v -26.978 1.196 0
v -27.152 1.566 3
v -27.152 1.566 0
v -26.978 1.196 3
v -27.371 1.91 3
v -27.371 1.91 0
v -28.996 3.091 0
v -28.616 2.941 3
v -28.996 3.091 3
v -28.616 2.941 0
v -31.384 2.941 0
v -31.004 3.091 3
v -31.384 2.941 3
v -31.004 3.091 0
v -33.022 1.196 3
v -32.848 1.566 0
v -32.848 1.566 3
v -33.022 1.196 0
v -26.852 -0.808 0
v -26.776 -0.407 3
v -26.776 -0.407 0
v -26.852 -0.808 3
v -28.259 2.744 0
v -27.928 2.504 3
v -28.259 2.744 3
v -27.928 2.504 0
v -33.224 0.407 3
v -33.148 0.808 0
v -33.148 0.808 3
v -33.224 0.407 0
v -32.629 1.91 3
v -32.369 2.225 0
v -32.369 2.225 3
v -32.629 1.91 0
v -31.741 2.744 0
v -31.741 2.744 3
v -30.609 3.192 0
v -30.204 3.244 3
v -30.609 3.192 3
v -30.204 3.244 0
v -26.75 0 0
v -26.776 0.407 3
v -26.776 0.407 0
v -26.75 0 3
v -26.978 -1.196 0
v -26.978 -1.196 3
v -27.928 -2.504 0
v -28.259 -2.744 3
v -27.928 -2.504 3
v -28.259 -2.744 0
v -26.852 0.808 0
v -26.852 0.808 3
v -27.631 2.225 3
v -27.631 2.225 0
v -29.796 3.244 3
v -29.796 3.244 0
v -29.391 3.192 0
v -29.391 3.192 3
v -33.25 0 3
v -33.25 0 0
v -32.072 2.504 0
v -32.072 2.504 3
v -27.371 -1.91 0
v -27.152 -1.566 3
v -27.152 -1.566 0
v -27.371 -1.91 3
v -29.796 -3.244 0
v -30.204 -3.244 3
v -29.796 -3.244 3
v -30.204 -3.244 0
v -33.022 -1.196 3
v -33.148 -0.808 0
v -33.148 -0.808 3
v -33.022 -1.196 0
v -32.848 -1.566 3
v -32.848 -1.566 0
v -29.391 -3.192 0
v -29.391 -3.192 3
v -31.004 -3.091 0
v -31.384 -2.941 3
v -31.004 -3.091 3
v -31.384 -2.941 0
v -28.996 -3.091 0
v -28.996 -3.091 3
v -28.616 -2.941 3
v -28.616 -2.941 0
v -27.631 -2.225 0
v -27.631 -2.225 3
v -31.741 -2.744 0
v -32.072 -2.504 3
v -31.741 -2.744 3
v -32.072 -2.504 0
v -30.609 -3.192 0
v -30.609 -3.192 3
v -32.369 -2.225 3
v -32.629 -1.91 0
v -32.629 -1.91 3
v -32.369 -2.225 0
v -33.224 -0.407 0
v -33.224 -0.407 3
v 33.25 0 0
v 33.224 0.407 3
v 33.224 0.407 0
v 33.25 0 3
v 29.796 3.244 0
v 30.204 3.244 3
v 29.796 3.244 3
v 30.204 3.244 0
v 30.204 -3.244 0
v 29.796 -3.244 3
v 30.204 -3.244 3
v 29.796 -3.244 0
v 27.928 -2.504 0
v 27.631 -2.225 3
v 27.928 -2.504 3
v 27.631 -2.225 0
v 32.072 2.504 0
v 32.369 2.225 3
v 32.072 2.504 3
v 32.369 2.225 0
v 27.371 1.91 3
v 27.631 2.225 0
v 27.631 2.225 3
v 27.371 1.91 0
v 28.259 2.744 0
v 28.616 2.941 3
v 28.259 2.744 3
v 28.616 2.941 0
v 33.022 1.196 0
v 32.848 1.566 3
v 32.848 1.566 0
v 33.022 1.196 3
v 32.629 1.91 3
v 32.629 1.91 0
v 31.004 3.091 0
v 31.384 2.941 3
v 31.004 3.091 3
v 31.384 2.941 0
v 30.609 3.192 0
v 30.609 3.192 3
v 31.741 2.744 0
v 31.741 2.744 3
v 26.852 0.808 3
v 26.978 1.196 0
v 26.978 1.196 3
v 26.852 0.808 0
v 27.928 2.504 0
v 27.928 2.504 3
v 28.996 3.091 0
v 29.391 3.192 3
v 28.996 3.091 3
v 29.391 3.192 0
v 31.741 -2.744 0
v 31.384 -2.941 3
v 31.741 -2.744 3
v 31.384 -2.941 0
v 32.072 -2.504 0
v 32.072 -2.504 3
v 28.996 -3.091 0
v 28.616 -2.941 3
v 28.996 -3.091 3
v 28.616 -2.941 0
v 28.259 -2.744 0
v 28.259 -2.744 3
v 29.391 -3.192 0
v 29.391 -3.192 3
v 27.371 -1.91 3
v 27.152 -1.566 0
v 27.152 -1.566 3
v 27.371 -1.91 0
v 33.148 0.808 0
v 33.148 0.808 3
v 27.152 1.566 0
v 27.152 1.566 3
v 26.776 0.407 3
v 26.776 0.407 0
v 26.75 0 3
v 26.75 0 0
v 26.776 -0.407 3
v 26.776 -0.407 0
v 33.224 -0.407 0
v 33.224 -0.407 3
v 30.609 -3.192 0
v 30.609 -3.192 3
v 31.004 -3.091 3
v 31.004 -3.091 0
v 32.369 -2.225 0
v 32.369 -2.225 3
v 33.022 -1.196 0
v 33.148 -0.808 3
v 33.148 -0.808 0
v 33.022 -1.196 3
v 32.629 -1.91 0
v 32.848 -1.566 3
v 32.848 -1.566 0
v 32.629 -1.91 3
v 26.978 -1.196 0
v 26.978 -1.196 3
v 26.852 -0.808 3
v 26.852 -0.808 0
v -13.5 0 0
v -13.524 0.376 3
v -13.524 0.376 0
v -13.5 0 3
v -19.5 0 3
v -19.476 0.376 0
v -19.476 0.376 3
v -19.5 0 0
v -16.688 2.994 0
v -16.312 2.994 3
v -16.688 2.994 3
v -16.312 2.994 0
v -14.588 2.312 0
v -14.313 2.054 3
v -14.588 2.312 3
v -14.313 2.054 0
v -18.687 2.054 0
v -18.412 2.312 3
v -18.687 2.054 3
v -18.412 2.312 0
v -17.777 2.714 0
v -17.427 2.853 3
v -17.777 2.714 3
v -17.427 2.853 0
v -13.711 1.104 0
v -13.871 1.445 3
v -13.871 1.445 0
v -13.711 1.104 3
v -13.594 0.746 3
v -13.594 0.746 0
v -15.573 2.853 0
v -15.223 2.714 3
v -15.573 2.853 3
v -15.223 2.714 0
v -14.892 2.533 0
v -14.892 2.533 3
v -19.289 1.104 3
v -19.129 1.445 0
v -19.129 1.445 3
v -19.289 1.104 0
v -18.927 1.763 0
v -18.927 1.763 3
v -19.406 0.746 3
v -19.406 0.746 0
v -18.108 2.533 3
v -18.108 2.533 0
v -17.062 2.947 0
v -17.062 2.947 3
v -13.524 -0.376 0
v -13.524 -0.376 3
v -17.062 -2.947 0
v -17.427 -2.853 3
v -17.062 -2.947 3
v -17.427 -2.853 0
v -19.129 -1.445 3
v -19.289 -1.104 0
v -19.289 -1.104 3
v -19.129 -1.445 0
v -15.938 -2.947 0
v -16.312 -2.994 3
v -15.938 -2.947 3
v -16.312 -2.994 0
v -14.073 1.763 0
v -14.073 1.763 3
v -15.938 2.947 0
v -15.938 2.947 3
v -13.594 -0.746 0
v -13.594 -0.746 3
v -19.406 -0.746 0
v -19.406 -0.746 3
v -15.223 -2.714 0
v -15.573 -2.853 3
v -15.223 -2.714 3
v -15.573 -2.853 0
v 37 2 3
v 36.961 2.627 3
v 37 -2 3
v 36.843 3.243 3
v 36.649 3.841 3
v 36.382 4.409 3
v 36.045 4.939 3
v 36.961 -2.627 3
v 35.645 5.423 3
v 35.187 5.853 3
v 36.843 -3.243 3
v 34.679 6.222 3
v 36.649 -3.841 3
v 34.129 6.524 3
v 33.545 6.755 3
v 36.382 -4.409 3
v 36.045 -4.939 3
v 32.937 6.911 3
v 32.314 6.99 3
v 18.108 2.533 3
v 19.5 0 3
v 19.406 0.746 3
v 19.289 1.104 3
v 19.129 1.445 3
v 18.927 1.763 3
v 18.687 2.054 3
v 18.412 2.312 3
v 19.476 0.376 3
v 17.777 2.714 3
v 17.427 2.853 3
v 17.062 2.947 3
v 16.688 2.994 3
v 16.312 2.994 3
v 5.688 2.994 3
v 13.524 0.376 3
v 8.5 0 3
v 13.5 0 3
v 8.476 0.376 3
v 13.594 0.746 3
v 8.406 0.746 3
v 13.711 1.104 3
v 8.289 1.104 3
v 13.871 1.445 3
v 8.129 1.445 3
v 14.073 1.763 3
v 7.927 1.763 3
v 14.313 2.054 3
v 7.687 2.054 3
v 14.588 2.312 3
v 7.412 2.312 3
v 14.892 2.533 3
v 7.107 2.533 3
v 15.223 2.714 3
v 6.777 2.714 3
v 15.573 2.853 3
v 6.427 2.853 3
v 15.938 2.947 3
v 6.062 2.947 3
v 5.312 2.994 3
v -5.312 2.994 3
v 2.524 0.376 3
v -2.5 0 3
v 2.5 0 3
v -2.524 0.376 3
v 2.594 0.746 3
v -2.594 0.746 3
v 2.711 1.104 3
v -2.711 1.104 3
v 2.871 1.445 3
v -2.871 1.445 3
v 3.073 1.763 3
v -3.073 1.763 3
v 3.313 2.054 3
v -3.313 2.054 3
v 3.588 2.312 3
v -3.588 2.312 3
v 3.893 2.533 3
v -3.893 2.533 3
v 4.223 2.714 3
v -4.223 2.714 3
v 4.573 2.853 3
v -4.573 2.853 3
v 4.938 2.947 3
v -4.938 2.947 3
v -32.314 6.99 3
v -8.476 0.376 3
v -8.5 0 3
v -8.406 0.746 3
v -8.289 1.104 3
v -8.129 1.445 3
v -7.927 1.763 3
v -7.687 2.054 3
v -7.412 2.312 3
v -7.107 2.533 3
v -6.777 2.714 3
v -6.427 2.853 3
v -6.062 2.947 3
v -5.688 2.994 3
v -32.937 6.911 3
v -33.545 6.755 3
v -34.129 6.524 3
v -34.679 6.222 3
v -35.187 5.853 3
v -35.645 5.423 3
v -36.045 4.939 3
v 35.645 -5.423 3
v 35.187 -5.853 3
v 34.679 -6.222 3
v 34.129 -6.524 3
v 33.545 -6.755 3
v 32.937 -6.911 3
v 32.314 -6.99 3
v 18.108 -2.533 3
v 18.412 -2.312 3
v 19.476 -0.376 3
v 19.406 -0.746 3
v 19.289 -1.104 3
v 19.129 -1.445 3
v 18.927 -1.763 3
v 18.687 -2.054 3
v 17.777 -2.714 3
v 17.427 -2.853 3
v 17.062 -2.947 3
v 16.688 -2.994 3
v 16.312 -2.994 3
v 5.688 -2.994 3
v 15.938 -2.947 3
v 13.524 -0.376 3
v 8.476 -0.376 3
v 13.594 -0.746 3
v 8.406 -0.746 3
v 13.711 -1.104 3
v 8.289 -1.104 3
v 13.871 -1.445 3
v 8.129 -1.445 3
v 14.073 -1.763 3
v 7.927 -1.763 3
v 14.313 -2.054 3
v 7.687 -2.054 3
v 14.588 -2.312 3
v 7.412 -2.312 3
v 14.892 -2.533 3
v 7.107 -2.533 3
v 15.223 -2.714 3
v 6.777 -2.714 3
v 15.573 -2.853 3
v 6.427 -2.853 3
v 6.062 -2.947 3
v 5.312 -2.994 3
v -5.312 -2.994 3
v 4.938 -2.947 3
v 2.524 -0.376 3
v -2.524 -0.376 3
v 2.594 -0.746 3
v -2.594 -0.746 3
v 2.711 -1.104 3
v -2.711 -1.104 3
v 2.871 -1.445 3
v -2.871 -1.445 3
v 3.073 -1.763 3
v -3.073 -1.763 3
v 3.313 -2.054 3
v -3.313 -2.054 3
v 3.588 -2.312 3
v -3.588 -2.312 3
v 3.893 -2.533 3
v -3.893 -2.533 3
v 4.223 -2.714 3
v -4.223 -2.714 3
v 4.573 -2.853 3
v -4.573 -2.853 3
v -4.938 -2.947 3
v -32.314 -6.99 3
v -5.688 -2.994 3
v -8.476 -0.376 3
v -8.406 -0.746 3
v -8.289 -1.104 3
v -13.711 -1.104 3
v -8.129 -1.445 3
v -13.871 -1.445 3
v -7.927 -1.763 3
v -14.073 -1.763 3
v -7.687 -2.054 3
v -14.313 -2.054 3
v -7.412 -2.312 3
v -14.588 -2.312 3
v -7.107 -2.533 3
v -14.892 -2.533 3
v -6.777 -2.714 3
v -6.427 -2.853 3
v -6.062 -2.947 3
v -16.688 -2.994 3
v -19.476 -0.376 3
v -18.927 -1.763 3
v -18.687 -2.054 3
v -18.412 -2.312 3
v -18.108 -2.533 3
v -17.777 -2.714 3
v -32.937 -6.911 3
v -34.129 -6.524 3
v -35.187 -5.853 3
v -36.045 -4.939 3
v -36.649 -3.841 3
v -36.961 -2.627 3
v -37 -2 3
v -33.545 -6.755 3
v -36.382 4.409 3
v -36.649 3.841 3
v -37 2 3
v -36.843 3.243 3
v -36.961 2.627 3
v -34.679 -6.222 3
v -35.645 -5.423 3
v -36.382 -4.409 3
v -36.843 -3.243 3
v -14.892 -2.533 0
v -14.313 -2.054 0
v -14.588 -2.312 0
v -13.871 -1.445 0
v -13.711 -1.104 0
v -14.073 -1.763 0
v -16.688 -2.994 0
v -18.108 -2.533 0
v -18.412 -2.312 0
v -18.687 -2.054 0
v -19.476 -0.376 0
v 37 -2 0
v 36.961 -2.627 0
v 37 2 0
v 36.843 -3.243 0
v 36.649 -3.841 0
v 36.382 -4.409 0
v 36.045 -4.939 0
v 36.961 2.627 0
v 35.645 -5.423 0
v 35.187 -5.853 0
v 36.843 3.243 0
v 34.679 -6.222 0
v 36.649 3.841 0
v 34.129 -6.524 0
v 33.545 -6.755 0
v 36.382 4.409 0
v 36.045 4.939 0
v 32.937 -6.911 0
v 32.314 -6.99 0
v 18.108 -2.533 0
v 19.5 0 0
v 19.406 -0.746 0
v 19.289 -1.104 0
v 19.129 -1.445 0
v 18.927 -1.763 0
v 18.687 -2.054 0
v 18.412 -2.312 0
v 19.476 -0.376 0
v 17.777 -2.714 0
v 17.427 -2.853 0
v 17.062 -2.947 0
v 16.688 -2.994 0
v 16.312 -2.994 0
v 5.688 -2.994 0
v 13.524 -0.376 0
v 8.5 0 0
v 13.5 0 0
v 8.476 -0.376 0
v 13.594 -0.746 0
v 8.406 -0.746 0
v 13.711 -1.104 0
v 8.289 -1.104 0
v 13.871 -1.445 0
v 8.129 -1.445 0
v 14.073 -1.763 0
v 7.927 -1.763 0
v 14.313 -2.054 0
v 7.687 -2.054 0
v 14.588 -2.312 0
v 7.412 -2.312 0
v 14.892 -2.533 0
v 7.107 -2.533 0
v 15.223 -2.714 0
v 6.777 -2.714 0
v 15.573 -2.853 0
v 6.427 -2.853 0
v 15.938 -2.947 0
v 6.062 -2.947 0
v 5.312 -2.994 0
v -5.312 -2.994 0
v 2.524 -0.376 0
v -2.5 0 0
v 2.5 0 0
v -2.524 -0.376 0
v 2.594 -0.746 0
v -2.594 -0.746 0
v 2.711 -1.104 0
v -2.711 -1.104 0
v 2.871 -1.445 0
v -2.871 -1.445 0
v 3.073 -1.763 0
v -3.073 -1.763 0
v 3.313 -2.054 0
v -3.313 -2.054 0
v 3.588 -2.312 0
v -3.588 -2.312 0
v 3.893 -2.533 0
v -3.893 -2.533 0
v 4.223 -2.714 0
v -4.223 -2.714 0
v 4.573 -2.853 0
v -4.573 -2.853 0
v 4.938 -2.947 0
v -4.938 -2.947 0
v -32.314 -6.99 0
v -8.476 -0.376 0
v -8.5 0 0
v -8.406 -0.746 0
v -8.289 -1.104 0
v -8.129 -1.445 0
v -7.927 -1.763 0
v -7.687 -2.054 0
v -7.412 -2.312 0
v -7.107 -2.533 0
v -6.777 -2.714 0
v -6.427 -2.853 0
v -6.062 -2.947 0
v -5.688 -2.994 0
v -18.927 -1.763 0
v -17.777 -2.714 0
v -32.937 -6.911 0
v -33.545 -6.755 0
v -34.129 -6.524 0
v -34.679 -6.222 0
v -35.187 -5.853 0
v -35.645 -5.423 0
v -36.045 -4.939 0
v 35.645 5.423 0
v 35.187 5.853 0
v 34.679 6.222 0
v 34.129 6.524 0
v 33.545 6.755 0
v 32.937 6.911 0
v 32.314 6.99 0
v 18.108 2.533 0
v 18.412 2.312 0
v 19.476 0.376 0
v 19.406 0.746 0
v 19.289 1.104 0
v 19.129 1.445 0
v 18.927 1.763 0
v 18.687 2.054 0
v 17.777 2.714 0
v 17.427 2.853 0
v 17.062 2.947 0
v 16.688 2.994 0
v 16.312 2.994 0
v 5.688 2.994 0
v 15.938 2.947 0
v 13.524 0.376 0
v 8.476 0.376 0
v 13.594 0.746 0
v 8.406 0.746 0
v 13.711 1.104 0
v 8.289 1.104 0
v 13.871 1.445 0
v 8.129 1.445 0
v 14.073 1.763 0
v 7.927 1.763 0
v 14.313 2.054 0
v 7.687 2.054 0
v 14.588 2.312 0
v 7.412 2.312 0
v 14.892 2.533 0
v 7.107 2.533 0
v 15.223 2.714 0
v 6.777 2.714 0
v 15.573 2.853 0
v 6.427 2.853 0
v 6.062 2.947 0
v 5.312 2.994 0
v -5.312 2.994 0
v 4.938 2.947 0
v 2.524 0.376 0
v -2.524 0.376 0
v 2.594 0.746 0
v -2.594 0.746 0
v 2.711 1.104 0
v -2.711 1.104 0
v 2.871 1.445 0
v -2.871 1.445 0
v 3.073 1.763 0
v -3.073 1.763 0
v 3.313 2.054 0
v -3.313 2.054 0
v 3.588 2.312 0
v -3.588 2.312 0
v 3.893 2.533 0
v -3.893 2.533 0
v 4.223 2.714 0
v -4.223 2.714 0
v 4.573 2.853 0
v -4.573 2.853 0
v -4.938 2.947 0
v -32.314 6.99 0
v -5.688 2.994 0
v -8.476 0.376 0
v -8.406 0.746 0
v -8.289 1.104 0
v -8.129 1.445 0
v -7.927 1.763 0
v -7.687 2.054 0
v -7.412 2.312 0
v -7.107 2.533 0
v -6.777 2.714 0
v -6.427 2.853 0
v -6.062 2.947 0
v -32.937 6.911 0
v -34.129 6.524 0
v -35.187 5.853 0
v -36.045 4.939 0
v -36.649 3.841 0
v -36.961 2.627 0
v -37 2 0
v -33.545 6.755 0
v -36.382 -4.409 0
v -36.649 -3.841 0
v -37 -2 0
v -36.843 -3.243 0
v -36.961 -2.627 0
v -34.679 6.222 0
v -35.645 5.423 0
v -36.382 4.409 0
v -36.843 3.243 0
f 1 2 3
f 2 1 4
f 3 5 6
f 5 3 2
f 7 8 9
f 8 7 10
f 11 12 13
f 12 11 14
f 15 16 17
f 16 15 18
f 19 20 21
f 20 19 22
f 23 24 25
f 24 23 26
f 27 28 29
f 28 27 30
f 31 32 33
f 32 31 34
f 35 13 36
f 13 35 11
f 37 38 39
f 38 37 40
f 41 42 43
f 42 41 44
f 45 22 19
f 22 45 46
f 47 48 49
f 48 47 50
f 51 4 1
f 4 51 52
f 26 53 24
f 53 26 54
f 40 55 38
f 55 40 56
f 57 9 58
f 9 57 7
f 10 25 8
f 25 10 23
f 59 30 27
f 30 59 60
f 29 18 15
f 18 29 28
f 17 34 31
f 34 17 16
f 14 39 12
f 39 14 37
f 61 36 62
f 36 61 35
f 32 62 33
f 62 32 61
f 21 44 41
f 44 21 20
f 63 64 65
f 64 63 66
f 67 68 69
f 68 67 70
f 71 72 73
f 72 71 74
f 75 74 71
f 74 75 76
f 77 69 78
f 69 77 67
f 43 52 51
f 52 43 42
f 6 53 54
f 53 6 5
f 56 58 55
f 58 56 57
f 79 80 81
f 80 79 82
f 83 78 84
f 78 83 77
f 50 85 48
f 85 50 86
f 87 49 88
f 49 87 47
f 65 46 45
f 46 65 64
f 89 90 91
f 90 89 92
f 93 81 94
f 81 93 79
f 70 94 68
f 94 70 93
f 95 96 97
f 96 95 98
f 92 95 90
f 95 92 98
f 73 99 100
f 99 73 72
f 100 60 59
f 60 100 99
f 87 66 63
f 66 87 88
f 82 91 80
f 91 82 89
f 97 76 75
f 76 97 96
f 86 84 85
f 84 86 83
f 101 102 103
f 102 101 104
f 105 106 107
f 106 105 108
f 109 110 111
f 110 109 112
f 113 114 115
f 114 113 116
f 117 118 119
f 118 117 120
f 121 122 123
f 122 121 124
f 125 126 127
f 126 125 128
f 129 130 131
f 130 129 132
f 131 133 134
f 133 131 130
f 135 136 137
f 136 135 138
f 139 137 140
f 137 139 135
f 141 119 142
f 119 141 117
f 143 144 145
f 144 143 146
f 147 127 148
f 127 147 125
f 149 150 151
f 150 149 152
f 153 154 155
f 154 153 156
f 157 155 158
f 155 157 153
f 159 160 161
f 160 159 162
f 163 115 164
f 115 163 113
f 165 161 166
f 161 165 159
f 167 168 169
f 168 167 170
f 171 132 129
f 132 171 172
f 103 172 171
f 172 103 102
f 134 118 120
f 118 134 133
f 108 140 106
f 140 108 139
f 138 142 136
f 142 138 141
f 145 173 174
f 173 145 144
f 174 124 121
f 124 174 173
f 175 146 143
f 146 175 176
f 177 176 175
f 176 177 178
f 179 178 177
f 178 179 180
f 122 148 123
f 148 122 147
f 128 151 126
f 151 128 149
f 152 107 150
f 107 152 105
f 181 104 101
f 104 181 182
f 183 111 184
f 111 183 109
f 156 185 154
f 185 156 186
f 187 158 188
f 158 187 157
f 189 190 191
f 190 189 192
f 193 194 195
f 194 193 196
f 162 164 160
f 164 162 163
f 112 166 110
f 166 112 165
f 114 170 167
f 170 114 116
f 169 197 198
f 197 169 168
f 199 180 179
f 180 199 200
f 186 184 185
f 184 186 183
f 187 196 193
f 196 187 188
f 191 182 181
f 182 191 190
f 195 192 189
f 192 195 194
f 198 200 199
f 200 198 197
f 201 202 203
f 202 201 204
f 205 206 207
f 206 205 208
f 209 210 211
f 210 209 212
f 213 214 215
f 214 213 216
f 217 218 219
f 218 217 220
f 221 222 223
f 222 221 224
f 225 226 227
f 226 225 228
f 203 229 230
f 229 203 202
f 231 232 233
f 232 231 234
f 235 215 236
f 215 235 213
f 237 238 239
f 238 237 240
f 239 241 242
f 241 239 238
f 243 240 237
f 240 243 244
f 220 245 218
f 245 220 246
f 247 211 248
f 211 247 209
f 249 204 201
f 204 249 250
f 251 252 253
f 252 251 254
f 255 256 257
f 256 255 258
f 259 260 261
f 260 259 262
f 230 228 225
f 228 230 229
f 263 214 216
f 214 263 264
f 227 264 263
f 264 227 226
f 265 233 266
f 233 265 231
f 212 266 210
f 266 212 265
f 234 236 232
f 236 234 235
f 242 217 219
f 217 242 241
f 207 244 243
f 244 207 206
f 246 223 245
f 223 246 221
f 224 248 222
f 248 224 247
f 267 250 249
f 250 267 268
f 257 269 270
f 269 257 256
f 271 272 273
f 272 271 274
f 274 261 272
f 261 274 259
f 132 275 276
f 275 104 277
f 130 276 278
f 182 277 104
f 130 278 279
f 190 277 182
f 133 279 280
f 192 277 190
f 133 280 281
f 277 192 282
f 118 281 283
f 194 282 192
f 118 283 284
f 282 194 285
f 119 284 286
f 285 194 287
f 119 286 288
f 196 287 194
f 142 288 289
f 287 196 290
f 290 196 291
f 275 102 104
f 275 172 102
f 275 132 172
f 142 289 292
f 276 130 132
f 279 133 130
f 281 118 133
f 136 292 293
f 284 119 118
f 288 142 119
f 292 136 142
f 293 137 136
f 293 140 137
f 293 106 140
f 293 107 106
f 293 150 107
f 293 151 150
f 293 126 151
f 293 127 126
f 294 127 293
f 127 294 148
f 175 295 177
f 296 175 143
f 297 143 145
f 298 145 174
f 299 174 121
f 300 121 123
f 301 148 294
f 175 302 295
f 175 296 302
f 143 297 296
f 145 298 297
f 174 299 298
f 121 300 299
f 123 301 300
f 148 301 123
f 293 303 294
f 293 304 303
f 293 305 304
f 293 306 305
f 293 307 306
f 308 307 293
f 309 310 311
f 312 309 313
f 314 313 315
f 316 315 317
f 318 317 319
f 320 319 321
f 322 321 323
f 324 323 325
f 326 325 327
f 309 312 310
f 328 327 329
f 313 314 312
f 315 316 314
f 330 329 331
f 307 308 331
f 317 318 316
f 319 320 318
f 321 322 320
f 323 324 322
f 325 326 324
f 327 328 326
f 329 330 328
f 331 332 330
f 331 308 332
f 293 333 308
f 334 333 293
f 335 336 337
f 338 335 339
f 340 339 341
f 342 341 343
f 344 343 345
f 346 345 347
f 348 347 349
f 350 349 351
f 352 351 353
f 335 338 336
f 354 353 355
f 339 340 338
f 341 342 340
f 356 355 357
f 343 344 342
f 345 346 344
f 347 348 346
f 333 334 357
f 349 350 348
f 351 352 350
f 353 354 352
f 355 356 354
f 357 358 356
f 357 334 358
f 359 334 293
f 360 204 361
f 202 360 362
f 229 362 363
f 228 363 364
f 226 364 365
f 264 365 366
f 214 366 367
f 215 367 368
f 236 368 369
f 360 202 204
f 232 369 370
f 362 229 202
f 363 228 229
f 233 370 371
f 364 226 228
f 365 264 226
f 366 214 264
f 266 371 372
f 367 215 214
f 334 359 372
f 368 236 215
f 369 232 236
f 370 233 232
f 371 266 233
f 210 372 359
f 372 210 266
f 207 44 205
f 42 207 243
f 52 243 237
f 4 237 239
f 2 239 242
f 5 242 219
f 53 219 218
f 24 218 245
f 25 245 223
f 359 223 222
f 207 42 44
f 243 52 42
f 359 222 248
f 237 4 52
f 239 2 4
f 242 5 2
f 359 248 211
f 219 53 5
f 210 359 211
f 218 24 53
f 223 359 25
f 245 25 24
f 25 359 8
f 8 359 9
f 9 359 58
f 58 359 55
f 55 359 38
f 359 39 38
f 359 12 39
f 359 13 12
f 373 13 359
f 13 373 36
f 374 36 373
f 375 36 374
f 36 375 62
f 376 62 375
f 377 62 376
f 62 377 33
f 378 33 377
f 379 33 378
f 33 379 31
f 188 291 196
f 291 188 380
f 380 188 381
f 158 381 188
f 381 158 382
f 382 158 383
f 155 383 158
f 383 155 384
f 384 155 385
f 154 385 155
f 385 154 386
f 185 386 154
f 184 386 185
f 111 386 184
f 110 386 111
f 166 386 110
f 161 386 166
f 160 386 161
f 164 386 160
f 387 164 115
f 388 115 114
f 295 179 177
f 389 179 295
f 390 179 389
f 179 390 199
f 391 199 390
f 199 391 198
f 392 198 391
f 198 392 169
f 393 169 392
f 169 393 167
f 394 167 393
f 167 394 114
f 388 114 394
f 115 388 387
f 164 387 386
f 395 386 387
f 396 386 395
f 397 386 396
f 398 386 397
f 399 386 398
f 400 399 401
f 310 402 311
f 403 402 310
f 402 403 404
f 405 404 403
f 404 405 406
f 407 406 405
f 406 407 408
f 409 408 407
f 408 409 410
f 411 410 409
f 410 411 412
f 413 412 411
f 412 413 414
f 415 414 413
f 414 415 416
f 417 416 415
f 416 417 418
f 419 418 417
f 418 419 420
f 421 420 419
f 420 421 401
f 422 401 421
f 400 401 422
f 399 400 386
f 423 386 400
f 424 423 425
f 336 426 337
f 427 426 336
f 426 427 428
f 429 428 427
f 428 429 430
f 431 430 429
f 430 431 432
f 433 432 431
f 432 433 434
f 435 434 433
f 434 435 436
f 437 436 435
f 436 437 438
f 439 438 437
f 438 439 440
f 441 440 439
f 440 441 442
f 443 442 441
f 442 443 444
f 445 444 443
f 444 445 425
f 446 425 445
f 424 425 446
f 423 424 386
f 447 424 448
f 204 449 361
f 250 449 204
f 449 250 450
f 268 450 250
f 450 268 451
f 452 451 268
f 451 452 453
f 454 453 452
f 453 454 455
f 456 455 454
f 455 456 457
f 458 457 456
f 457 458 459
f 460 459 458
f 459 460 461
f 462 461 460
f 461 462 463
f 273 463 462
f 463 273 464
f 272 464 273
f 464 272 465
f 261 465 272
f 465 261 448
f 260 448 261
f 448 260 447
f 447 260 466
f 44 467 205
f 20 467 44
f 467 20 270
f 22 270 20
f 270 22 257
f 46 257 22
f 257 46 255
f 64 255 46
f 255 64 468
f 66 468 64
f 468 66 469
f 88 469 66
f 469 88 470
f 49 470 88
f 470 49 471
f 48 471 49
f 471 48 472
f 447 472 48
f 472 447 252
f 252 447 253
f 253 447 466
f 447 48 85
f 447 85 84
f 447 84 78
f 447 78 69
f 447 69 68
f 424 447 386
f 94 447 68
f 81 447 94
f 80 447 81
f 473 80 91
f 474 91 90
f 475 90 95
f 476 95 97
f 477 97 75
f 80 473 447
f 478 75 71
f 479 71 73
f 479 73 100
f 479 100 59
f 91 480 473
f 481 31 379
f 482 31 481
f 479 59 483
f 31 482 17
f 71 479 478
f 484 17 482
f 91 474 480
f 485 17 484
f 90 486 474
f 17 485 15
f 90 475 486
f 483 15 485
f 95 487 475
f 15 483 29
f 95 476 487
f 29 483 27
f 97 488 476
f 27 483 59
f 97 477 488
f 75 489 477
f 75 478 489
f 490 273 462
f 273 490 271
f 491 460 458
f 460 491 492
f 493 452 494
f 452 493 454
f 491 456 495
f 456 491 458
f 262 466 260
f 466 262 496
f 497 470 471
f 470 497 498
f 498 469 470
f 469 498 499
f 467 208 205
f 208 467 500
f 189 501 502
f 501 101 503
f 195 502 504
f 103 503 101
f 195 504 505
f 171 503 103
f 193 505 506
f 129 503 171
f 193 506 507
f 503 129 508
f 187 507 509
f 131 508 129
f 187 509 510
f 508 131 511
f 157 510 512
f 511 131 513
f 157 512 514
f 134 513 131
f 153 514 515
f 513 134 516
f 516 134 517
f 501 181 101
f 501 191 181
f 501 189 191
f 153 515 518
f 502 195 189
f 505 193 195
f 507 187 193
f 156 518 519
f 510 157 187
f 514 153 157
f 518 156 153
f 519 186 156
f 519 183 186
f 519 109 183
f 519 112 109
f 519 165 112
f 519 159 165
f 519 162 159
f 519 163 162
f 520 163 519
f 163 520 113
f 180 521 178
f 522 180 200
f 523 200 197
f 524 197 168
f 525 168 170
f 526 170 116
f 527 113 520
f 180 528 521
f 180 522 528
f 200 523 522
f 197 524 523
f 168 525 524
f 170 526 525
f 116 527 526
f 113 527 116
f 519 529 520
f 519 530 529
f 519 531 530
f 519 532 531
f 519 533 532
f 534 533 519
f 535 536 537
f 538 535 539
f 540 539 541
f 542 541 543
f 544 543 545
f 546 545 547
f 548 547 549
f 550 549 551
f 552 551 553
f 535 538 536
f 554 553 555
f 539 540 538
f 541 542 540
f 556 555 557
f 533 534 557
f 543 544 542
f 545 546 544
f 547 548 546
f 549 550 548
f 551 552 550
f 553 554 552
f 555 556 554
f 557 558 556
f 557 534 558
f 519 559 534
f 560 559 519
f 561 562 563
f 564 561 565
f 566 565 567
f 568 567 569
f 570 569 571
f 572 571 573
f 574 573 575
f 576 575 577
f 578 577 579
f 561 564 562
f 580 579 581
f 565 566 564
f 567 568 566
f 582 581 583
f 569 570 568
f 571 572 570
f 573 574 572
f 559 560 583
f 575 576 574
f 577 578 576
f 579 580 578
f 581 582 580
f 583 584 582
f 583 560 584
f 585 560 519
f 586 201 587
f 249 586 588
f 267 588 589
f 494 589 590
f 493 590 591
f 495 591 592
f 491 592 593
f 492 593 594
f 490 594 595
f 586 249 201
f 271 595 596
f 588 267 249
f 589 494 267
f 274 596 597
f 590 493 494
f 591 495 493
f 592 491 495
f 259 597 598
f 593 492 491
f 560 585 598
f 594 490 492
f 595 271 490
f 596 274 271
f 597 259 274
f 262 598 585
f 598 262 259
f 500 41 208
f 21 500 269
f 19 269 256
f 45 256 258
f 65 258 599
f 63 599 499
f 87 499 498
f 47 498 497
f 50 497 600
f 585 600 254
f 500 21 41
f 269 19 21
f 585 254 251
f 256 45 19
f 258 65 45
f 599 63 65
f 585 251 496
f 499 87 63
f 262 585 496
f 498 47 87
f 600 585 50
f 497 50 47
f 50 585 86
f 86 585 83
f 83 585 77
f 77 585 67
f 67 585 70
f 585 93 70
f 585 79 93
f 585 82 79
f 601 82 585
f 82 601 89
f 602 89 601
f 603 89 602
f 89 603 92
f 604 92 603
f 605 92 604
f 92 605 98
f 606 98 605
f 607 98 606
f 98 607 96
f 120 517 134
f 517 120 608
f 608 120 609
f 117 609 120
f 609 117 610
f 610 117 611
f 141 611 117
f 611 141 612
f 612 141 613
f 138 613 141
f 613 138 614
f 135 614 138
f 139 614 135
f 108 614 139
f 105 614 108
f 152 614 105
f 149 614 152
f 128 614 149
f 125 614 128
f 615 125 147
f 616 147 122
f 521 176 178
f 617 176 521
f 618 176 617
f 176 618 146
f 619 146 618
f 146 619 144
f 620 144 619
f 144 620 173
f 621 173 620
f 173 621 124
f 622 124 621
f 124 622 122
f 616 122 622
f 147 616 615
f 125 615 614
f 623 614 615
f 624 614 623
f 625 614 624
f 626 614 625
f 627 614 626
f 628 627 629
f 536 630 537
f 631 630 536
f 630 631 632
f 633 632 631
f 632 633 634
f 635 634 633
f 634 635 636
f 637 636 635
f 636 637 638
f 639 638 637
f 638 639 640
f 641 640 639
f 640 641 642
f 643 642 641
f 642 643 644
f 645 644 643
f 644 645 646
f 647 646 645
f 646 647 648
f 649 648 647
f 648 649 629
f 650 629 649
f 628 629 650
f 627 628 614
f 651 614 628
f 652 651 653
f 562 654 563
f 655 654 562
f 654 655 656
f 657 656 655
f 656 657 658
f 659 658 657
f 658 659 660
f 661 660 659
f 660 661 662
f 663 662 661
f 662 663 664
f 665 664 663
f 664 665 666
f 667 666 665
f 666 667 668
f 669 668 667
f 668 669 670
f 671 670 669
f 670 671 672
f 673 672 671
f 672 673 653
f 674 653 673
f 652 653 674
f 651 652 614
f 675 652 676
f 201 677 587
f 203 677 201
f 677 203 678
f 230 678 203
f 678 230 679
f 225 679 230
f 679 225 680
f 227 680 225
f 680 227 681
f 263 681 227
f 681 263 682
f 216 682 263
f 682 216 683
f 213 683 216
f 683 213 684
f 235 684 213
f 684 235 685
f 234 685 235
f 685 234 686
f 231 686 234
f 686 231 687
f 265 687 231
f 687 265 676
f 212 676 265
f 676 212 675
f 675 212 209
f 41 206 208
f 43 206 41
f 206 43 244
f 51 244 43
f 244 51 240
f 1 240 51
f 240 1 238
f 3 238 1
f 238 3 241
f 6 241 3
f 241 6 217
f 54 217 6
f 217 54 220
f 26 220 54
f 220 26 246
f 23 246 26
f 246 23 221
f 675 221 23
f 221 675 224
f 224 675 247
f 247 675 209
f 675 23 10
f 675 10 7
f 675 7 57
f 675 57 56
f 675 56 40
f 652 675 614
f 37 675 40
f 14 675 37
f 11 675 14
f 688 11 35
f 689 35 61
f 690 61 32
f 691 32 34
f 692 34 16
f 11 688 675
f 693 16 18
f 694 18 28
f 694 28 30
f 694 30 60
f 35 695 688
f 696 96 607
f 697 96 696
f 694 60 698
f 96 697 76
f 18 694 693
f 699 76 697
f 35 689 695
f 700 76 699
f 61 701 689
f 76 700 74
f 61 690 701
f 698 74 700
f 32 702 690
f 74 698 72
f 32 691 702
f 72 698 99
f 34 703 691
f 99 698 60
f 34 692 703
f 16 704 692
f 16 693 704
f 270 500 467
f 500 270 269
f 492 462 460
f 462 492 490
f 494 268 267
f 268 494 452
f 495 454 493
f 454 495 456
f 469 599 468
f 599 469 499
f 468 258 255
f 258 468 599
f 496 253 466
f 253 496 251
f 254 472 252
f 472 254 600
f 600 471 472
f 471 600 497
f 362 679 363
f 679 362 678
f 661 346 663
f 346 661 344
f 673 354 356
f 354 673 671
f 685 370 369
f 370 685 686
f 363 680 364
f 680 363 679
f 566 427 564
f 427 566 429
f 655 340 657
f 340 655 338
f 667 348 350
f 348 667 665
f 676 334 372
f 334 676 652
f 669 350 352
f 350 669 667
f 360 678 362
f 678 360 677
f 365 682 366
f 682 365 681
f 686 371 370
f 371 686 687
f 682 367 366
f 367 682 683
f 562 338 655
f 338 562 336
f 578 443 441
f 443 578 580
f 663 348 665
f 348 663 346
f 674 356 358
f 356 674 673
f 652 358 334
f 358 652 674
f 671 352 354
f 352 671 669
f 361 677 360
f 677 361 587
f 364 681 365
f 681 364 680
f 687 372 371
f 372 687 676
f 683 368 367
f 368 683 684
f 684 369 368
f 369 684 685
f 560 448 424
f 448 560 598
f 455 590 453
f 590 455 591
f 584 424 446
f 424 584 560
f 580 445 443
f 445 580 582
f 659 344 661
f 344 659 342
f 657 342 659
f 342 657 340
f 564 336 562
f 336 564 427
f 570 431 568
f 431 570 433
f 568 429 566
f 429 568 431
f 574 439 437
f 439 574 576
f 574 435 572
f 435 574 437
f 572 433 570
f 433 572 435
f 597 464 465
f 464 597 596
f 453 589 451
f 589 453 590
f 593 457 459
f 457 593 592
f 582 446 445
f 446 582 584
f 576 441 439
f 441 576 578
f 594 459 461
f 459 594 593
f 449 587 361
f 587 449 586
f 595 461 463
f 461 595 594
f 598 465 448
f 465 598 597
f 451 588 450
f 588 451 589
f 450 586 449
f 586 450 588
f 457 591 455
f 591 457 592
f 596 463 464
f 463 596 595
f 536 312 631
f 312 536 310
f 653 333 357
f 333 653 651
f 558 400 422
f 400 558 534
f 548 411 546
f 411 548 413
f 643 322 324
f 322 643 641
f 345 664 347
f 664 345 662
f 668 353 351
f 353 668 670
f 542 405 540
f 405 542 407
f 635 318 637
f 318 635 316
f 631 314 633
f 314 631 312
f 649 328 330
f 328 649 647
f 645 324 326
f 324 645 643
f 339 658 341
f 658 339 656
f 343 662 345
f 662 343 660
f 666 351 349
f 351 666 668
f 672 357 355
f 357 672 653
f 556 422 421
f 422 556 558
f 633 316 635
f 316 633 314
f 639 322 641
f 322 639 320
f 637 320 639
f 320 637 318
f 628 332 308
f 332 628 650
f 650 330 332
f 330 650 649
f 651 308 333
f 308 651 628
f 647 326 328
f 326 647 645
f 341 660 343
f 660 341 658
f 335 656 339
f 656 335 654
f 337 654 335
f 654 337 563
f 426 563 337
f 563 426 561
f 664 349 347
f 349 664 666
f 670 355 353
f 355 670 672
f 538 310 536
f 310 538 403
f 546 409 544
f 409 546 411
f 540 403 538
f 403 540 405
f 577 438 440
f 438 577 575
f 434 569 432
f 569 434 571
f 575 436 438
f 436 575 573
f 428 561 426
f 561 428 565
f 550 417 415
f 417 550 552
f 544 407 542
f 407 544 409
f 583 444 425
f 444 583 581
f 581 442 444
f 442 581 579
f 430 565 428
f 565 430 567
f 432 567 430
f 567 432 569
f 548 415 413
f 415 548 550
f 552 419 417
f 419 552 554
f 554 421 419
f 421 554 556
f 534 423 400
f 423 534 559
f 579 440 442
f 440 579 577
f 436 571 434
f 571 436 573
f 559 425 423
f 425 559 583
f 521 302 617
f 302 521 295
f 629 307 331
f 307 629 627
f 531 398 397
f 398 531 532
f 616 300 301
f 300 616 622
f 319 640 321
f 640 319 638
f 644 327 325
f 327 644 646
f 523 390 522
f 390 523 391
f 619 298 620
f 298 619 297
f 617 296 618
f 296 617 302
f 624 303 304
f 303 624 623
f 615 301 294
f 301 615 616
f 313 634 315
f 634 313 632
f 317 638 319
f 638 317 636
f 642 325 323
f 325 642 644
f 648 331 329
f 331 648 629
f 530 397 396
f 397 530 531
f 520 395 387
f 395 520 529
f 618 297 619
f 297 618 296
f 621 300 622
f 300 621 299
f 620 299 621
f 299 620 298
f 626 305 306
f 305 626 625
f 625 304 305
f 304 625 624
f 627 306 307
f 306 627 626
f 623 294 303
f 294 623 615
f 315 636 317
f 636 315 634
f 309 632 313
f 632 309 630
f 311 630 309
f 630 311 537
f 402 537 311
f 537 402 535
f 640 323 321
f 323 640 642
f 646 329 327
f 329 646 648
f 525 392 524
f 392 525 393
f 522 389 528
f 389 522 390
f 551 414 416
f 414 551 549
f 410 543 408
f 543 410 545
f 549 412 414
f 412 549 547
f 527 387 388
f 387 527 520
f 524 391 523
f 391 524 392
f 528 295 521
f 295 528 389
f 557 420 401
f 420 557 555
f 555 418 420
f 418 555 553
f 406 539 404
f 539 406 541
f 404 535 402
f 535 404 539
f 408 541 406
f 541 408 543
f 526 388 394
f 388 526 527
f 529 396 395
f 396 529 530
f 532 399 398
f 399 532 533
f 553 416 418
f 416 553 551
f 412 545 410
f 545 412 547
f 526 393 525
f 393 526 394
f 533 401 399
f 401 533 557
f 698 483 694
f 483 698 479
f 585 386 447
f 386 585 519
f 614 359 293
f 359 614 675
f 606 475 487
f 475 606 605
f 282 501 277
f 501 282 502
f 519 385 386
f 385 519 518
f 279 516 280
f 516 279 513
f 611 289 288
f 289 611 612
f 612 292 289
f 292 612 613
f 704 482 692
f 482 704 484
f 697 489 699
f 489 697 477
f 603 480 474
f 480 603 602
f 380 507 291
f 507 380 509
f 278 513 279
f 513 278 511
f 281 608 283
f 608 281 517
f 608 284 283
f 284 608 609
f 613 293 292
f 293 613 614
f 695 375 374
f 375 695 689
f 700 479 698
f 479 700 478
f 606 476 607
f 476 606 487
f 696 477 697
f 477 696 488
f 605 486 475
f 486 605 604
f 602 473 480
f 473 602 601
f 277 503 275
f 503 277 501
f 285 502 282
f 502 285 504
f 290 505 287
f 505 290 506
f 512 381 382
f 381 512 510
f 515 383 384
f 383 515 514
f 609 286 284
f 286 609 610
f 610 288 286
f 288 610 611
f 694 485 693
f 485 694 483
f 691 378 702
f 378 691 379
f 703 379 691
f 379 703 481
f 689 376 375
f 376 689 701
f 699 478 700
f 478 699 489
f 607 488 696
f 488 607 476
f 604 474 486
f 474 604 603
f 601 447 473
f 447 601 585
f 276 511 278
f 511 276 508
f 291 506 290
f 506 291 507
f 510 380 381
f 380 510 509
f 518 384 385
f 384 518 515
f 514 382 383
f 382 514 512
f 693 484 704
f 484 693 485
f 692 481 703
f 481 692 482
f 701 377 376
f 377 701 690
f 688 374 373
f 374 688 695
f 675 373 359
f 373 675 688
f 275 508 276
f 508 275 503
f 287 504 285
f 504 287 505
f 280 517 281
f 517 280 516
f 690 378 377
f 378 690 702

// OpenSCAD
$fn = 50;


difference() {
	union() {
		hull() {
			translate(v = [-32.0000000000, 2.0000000000, 0]) {
				cylinder(h = 3, r = 5);
			}
			translate(v = [32.0000000000, 2.0000000000, 0]) {
				cylinder(h = 3, r = 5);
			}
			translate(v = [-32.0000000000, -2.0000000000, 0]) {
				cylinder(h = 3, r = 5);
			}
			translate(v = [32.0000000000, -2.0000000000, 0]) {
				cylinder(h = 3, r = 5);
			}
		}
	}
	union() {
		#translate(v = [-30.0000000000, 0.0000000000, 0]) {
			cylinder(h = 3, r = 3.2500000000);
		}
		#translate(v = [30.0000000000, 0.0000000000, 0]) {
			cylinder(h = 3, r = 3.2500000000);
		}
		#translate(v = [-30.0000000000, 0.0000000000, -100.0000000000]) {
			cylinder(h = 200, r = 3.2500000000);
		}
		#translate(v = [-30.0000000000, 0.0000000000, -100.0000000000]) {
			cylinder(h = 200, r = 3.2500000000);
		}
		#translate(v = [30.0000000000, 0.0000000000, -100.0000000000]) {
			cylinder(h = 200, r = 3.2500000000);
		}
		#translate(v = [30.0000000000, 0.0000000000, -100.0000000000]) {
			cylinder(h = 200, r = 3.2500000000);
		}
		#translate(v = [-30.0000000000, 0.0000000000, 0]) {
			cylinder(h = 3, r = 1.8000000000);
		}
		#translate(v = [30.0000000000, 0.0000000000, 0]) {
			cylinder(h = 3, r = 1.8000000000);
		}
		#translate(v = [-30.0000000000, 0.0000000000, 0]) {
			cylinder(h = 3, r = 1.8000000000);
		}
		#translate(v = [30.0000000000, 0.0000000000, 0]) {
			cylinder(h = 3, r = 1.8000000000);
		}
		#translate(v = [-30.0000000000, 0.0000000000, 0]) {
			cylinder(h = 3, r = 1.8000000000);
		}
		#translate(v = [30.0000000000, 0.0000000000, 0]) {
			cylinder(h = 3, r = 1.8000000000);
		}
		#translate(v = [-16.5000000000, 0, 0]) {
			cylinder(h = 3, r = 3.0000000000);
		}
		#translate(v = [-5.5000000000, 0, 0]) {
			cylinder(h = 3, r = 3.0000000000);
		}
		#translate(v = [5.5000000000, 0, 0]) {
			cylinder(h = 3, r = 3.0000000000);
		}
		#translate(v = [16.5000000000, 0, 0]) {
			cylinder(h = 3, r = 3.0000000000);
		}
	}
}
